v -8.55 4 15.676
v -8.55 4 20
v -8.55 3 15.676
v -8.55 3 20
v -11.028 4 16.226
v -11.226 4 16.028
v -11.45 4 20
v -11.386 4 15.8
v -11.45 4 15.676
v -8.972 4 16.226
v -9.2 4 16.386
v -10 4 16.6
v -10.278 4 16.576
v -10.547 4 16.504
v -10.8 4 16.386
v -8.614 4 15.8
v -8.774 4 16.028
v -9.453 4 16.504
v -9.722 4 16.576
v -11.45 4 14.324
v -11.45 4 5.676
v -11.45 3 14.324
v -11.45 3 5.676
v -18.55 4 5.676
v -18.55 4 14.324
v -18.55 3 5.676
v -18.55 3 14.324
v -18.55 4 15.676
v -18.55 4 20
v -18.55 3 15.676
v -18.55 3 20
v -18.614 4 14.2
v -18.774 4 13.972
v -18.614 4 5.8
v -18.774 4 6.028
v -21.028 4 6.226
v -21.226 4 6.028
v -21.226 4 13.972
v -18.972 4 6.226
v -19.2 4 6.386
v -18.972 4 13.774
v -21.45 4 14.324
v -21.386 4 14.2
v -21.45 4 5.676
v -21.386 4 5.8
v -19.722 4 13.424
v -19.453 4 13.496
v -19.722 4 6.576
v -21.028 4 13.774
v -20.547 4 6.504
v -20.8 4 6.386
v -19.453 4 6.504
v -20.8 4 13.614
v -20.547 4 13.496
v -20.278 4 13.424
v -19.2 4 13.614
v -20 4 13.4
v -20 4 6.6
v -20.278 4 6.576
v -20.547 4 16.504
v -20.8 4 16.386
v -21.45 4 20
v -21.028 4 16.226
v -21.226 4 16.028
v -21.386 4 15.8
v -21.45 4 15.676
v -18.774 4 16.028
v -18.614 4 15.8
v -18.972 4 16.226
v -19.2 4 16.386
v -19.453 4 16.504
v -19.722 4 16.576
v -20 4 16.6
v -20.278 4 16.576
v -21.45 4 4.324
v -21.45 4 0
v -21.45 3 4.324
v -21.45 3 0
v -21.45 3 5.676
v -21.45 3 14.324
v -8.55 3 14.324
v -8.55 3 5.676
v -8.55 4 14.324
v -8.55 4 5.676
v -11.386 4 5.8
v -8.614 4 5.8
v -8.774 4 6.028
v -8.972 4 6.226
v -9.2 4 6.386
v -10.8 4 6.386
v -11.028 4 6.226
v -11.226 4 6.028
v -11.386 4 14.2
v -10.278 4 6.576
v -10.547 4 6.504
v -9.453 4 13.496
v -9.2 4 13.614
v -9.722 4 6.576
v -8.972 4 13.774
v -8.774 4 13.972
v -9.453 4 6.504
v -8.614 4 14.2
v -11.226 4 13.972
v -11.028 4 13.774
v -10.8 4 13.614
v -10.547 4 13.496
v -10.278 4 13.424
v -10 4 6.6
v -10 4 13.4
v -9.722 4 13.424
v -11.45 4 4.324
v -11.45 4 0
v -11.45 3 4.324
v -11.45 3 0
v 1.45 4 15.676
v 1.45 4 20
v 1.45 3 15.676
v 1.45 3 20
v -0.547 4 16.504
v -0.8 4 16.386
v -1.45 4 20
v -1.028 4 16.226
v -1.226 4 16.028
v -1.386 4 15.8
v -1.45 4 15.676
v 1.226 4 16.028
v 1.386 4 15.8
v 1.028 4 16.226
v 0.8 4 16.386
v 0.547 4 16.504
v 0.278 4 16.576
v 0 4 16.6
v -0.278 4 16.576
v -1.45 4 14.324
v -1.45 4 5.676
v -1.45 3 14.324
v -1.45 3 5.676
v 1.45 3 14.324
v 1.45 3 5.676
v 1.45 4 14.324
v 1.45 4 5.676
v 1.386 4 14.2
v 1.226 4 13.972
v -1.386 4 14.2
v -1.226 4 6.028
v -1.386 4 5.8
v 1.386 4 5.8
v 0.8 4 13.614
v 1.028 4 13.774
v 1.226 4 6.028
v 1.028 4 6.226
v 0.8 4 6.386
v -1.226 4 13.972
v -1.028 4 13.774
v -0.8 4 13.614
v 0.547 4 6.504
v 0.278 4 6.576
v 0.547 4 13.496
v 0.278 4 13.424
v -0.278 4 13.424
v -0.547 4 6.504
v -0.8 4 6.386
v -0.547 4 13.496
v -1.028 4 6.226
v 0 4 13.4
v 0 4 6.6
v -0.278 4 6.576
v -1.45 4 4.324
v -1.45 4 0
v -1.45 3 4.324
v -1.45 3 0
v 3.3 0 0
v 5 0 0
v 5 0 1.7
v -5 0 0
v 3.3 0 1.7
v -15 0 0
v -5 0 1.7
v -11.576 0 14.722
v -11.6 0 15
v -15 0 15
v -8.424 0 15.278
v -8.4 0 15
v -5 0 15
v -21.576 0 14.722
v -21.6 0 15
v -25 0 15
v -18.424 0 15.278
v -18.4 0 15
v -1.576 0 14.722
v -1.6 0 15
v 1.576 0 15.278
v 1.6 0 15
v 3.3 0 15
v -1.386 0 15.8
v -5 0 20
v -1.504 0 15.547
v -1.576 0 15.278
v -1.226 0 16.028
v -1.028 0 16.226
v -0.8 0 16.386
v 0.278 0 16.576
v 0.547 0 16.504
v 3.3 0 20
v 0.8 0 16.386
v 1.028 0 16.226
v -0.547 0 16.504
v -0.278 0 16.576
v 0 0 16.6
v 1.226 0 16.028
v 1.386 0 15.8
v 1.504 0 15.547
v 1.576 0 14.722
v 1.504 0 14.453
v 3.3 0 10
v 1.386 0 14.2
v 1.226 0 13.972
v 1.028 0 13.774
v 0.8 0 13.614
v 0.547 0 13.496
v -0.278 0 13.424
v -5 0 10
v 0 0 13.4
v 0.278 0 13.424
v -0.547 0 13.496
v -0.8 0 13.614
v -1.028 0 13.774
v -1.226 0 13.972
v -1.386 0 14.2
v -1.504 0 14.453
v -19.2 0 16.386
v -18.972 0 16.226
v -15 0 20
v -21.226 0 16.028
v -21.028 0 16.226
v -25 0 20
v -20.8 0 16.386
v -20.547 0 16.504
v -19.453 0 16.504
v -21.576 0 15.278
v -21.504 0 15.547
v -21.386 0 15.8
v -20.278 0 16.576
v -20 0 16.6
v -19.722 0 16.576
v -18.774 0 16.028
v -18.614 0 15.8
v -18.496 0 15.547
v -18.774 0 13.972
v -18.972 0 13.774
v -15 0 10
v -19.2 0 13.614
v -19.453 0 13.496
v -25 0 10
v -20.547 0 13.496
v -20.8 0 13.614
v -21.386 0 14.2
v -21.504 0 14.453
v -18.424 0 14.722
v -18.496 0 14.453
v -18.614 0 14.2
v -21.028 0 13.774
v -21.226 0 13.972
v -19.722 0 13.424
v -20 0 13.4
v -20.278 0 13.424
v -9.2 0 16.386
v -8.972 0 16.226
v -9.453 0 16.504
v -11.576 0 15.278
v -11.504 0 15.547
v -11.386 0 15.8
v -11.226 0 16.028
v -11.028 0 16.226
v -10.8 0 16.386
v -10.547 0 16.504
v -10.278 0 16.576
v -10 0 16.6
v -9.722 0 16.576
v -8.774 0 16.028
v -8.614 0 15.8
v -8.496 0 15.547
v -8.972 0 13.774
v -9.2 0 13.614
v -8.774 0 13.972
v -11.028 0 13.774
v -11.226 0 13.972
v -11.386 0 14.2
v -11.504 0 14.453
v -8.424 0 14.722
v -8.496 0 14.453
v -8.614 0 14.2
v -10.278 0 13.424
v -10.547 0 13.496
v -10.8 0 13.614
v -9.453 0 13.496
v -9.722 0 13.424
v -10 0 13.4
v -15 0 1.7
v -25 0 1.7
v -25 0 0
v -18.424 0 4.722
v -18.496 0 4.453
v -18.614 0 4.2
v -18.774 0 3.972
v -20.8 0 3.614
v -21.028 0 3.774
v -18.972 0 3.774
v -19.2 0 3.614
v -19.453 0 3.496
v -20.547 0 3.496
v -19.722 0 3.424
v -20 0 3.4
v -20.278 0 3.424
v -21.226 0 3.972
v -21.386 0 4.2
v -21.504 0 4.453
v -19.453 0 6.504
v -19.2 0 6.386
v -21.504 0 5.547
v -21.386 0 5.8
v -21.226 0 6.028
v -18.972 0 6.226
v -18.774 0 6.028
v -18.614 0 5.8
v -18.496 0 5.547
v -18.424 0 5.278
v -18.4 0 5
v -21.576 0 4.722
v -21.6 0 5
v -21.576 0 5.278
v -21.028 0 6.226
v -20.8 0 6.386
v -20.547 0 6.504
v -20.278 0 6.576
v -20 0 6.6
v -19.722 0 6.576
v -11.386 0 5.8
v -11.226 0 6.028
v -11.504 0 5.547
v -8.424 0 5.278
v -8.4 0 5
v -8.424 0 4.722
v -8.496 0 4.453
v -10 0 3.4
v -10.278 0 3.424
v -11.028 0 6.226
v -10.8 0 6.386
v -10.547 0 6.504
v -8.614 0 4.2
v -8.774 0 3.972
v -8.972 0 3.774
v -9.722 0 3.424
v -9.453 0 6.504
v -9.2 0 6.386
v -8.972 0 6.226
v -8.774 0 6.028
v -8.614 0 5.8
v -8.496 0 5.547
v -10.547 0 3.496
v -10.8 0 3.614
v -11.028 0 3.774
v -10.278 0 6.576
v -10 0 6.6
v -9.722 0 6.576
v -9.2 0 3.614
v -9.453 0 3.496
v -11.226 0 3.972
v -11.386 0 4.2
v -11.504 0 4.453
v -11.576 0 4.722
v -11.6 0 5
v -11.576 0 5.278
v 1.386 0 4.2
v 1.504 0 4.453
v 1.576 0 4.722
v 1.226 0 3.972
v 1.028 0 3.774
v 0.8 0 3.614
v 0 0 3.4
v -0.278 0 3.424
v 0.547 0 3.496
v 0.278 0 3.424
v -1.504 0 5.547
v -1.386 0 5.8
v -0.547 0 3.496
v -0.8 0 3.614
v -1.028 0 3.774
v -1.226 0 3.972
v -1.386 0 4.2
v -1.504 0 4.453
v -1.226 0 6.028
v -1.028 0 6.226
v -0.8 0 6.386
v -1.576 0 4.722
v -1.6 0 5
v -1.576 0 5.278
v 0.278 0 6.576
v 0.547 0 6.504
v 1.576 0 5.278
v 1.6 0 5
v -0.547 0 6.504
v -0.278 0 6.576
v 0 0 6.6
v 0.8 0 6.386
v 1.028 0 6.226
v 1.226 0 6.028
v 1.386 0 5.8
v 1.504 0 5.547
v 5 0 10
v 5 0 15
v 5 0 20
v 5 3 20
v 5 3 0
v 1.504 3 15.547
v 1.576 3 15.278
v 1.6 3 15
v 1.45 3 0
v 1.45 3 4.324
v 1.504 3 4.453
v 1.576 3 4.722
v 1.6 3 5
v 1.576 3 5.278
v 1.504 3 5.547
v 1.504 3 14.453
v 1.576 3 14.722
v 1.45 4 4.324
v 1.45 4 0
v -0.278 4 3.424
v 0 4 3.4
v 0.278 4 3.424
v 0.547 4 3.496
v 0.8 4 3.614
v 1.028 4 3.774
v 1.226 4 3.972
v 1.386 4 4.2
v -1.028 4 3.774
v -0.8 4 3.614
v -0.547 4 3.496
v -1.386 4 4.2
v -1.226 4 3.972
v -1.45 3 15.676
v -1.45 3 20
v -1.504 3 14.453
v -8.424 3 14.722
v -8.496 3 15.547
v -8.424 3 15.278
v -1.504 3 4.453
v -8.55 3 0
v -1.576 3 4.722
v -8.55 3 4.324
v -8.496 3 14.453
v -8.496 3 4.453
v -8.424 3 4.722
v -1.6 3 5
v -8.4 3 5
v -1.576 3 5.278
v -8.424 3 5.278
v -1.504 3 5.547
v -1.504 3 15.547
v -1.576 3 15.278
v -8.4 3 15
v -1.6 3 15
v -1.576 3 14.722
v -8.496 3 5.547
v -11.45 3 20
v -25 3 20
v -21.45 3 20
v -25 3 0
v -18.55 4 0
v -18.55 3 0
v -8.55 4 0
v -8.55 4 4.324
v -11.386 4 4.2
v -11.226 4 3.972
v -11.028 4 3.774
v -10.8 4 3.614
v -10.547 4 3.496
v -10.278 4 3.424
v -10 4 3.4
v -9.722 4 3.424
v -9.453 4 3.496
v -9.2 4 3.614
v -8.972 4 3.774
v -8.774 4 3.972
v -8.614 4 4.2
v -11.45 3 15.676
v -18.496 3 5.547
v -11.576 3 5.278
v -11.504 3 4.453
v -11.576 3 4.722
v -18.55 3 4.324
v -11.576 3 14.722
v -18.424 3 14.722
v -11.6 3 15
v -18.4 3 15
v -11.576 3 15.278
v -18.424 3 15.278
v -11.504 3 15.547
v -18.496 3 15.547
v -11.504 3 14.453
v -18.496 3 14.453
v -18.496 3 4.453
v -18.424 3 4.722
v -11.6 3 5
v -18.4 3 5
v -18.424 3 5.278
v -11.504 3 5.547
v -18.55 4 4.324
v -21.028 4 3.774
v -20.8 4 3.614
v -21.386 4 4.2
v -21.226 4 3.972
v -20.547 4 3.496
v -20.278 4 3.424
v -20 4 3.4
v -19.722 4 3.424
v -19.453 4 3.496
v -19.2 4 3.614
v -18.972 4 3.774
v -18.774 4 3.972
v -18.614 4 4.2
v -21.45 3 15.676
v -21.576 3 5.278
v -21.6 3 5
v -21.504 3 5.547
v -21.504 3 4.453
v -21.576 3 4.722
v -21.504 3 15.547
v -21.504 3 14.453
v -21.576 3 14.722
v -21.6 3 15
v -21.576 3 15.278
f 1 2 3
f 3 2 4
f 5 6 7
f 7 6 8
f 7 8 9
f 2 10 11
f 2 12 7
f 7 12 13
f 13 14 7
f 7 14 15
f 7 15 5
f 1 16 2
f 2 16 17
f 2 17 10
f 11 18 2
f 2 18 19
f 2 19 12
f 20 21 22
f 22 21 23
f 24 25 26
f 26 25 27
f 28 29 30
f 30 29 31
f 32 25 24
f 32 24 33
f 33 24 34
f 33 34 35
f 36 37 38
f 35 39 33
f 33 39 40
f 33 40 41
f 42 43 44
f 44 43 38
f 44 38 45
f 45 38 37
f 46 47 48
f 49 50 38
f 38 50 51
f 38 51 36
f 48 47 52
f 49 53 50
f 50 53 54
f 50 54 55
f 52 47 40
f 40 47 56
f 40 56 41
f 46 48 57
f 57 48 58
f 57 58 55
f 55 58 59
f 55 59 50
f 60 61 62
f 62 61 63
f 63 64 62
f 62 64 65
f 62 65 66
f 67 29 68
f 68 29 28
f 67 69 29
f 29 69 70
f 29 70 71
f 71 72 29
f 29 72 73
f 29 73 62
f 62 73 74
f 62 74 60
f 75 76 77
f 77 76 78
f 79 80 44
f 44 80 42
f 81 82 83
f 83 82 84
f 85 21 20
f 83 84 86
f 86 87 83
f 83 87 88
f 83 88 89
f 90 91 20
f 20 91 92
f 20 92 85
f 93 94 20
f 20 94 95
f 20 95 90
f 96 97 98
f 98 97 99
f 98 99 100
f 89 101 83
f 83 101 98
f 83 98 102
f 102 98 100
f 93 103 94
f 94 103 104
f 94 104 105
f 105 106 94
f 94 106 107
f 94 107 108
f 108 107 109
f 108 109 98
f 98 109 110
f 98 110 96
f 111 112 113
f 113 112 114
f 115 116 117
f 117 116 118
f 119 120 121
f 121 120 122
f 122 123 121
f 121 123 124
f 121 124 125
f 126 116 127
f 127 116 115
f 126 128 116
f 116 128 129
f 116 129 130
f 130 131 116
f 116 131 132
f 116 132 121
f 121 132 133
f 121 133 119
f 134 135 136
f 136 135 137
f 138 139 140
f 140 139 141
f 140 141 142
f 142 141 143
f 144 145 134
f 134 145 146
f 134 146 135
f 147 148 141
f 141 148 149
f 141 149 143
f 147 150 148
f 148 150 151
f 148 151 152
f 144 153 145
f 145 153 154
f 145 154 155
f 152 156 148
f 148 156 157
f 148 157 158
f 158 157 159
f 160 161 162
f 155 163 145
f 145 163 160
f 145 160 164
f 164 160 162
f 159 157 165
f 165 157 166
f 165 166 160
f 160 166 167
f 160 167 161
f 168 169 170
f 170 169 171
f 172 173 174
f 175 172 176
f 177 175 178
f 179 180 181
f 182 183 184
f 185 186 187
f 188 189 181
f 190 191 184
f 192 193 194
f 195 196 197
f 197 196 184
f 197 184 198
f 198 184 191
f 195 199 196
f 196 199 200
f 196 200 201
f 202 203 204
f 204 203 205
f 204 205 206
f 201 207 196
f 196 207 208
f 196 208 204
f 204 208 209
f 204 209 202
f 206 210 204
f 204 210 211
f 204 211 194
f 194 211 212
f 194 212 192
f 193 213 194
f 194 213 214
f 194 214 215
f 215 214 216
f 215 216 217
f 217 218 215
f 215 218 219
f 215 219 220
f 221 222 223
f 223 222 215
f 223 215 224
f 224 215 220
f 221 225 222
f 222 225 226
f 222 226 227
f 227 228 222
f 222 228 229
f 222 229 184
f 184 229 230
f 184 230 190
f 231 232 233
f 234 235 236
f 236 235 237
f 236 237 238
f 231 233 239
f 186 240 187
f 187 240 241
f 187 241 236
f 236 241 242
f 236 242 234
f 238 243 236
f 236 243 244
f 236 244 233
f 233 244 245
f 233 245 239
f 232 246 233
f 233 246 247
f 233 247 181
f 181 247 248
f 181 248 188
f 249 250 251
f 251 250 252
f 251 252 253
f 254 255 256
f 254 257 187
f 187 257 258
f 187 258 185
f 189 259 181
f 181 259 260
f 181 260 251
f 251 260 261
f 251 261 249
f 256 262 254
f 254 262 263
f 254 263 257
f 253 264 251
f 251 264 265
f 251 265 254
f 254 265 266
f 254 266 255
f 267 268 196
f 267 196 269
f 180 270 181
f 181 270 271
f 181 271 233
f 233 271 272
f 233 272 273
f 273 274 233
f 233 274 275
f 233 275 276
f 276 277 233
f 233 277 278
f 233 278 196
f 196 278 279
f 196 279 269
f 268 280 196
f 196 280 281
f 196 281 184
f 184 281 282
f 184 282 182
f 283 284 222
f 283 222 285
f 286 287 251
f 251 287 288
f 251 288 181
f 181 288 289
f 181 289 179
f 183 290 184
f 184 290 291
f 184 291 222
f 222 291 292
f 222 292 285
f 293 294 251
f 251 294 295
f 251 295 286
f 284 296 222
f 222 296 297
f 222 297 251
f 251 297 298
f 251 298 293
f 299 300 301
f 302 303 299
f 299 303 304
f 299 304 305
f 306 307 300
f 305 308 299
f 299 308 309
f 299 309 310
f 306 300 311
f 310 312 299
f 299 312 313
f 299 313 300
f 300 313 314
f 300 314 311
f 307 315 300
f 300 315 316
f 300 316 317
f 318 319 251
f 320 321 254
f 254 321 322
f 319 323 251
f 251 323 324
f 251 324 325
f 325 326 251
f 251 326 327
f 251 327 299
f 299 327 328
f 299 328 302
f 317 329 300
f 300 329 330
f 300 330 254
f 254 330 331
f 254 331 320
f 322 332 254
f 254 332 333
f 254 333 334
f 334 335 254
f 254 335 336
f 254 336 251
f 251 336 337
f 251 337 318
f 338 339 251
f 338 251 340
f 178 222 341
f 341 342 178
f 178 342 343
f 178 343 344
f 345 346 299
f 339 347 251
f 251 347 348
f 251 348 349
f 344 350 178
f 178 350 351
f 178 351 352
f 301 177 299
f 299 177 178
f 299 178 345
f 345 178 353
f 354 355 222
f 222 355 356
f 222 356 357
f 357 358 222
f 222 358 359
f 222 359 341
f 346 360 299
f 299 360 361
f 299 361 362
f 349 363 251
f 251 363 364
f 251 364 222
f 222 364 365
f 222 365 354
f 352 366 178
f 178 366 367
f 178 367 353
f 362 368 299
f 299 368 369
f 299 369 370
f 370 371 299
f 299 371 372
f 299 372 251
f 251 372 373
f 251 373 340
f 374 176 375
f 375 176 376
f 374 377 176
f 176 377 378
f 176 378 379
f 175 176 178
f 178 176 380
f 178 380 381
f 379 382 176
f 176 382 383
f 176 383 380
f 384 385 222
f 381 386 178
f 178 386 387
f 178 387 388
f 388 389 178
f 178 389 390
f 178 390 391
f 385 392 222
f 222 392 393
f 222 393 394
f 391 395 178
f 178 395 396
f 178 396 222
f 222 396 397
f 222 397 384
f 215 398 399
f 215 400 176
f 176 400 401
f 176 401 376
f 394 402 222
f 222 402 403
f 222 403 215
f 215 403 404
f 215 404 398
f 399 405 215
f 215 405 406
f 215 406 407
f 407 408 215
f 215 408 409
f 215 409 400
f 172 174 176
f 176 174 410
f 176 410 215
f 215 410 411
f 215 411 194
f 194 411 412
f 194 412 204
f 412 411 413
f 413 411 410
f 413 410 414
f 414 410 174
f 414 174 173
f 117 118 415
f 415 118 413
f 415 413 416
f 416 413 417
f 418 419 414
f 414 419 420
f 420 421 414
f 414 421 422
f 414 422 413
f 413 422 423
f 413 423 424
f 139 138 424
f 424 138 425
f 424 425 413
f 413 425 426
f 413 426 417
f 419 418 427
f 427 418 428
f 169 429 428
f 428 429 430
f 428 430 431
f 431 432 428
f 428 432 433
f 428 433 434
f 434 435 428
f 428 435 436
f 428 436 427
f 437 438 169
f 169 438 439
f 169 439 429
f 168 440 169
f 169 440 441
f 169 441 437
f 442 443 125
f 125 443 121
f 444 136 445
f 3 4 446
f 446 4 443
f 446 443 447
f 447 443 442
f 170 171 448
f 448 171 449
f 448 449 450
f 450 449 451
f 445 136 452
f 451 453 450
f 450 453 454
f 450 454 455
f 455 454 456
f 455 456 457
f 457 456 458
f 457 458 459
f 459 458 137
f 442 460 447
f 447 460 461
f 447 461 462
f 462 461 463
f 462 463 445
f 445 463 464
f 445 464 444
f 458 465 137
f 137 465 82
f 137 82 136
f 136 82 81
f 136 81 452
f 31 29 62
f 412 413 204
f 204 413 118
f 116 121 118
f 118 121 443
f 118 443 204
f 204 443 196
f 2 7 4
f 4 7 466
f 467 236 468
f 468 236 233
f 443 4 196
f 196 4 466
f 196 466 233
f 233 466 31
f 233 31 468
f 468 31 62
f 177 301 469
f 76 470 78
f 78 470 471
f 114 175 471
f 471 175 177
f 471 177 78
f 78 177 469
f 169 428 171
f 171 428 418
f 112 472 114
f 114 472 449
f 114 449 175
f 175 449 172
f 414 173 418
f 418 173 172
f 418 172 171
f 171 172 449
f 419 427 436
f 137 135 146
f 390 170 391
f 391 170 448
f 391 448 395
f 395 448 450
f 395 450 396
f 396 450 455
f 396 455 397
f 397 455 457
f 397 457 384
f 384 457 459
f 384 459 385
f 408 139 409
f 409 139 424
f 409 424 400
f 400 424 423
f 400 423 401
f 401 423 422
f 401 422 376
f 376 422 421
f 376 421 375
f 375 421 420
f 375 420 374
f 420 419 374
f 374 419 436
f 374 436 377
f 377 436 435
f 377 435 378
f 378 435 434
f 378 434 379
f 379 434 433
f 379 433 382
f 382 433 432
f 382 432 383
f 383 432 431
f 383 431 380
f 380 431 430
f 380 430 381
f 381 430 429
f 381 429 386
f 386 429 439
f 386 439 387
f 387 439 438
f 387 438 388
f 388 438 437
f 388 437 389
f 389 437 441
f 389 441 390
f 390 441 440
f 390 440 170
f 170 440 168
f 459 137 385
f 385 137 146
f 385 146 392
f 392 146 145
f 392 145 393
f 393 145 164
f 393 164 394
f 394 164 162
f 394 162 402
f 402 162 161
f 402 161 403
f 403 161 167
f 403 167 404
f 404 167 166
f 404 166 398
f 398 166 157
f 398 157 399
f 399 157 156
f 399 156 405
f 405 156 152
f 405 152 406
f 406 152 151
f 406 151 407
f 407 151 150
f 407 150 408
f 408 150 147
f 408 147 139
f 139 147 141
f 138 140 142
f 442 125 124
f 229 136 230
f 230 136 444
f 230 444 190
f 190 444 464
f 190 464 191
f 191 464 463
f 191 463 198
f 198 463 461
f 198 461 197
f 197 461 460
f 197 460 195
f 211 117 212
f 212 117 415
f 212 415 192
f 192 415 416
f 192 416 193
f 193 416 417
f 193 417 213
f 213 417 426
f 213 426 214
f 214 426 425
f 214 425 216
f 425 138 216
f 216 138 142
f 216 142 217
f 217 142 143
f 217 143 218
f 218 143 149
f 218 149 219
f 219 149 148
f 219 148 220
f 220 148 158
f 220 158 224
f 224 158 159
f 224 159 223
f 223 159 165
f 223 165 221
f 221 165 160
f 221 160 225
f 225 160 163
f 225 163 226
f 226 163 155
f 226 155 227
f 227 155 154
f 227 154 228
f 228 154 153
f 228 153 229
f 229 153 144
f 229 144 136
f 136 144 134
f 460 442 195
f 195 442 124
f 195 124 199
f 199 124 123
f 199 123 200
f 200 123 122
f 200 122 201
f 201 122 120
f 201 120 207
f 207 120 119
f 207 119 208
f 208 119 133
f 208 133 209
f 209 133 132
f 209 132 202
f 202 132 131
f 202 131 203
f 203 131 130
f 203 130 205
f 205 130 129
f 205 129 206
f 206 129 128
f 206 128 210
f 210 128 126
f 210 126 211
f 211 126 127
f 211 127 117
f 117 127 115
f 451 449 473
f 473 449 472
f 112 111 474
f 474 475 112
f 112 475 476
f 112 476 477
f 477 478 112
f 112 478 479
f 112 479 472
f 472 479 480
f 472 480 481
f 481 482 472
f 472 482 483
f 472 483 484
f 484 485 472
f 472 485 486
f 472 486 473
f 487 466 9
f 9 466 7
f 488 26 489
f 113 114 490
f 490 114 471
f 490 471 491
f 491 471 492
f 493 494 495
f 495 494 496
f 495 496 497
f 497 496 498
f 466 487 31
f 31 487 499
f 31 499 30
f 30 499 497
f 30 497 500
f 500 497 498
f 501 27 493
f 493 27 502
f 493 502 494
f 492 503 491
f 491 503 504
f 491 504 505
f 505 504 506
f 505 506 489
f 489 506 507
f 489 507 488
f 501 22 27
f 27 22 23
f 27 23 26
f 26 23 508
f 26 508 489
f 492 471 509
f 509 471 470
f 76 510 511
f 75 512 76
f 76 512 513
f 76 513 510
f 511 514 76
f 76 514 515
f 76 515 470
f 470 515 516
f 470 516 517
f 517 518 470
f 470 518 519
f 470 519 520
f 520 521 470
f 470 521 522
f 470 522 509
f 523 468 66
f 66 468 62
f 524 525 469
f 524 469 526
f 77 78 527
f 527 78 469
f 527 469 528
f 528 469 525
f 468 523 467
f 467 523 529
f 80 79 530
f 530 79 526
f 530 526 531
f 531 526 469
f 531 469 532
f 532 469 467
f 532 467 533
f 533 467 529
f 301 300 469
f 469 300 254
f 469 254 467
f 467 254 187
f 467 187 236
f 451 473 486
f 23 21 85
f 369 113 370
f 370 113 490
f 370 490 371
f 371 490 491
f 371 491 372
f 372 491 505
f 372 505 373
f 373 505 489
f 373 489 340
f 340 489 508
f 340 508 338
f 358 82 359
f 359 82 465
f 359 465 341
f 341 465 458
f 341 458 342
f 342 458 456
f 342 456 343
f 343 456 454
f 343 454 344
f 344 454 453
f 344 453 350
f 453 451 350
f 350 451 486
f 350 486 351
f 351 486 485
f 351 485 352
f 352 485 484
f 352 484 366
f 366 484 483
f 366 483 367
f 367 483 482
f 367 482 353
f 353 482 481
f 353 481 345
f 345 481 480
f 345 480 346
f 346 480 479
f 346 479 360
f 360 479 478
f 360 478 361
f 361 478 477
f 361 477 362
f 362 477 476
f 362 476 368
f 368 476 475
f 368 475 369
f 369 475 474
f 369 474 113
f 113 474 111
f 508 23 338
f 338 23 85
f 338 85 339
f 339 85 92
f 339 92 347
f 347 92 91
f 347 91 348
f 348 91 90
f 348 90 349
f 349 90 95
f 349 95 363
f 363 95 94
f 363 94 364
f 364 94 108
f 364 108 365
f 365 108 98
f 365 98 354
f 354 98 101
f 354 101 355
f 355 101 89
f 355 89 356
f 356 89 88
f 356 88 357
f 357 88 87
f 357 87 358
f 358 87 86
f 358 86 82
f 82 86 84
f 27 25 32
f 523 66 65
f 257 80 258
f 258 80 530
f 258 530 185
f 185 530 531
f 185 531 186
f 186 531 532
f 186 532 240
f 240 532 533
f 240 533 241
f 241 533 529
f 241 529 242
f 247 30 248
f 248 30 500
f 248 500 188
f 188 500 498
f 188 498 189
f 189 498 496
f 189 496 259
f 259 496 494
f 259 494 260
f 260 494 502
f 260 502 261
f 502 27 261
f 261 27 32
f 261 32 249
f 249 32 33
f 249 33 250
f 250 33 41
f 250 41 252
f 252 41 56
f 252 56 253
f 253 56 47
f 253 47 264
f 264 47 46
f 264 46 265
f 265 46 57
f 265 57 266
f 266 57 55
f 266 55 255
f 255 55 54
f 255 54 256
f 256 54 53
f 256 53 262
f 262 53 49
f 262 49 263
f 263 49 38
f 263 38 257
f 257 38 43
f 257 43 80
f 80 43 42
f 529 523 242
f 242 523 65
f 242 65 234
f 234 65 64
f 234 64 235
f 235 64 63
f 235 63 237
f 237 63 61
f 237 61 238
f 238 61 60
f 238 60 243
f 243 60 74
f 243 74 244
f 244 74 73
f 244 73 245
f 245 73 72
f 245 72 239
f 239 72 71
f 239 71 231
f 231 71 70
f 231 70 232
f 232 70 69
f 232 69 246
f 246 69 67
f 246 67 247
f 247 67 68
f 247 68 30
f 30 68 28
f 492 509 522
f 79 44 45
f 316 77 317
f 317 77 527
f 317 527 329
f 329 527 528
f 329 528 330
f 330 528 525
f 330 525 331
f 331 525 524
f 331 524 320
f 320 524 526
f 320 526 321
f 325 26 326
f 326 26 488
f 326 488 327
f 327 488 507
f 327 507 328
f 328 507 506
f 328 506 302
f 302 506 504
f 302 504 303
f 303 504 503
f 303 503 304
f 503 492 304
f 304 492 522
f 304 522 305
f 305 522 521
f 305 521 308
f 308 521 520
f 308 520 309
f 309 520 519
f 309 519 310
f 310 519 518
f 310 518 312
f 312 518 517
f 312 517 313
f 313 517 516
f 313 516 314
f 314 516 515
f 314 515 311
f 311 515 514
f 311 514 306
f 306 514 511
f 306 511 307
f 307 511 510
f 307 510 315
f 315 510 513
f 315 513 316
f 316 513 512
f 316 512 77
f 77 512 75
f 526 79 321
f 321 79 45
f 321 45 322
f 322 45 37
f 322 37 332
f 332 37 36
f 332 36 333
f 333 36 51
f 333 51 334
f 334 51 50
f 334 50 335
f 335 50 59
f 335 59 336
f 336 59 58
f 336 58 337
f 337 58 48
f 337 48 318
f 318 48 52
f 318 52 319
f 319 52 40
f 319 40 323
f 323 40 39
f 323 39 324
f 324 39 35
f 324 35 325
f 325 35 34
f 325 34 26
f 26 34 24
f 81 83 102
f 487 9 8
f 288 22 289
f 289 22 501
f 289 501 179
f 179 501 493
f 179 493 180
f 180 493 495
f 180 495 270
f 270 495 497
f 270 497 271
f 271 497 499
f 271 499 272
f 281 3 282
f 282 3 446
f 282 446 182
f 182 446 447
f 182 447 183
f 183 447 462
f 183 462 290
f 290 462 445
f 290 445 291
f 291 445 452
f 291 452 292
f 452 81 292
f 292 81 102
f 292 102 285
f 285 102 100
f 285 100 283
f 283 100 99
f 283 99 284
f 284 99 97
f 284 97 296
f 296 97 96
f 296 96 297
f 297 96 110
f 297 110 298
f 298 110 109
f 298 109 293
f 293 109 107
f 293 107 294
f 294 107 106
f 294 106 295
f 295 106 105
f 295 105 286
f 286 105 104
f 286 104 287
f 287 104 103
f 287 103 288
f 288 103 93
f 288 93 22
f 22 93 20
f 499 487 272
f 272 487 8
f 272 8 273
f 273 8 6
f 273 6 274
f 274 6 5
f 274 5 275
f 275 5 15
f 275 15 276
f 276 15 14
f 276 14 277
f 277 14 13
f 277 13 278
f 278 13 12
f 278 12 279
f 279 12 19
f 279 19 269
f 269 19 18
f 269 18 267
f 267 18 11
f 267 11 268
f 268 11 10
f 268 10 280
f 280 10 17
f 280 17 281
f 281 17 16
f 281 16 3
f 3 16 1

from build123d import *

# Parameters (mm, degrees)
MAIN_DEPTH                 = 20
ESQUISSE2_R                = 1.6
TOPHOLE_DEPTH              = 5
R_P_TITION_LIN_AIRE1_COUNT = 3
R_P_TITION_LIN_AIRE1_PITCH = 10


with BuildPart() as part:
    # Esquisse1 → Main (new body)
    with BuildSketch(Plane.XY):
        Polygon((-5, 0), (-5, 3), (-1.45, 3), (-1.45, 4), (1.45, 4), (1.45, 3), (5, 3), (5, 0), align=None)
    main = extrude(amount=MAIN_DEPTH)

    # Esquisse2 → TopHole (cut, through all)
    with BuildSketch(Plane(origin=(0, 4, 0), x_dir=(1, 0, 0), z_dir=(0, 1, 0))):
        with Locations((0, -5)):
            Circle(ESQUISSE2_R)
        with Locations((0, -15)):
            Circle(ESQUISSE2_R)
    tophole = extrude(amount=-TOPHOLE_DEPTH, mode=Mode.SUBTRACT)

    # Répétition linéaire1: Main, TopHole ×3
    with Locations(*[(-i * R_P_TITION_LIN_AIRE1_PITCH, 0, 0) for i in range(1, R_P_TITION_LIN_AIRE1_COUNT)]):
        add(main)
        add(tophole, mode=Mode.SUBTRACT)


solid = part.part
